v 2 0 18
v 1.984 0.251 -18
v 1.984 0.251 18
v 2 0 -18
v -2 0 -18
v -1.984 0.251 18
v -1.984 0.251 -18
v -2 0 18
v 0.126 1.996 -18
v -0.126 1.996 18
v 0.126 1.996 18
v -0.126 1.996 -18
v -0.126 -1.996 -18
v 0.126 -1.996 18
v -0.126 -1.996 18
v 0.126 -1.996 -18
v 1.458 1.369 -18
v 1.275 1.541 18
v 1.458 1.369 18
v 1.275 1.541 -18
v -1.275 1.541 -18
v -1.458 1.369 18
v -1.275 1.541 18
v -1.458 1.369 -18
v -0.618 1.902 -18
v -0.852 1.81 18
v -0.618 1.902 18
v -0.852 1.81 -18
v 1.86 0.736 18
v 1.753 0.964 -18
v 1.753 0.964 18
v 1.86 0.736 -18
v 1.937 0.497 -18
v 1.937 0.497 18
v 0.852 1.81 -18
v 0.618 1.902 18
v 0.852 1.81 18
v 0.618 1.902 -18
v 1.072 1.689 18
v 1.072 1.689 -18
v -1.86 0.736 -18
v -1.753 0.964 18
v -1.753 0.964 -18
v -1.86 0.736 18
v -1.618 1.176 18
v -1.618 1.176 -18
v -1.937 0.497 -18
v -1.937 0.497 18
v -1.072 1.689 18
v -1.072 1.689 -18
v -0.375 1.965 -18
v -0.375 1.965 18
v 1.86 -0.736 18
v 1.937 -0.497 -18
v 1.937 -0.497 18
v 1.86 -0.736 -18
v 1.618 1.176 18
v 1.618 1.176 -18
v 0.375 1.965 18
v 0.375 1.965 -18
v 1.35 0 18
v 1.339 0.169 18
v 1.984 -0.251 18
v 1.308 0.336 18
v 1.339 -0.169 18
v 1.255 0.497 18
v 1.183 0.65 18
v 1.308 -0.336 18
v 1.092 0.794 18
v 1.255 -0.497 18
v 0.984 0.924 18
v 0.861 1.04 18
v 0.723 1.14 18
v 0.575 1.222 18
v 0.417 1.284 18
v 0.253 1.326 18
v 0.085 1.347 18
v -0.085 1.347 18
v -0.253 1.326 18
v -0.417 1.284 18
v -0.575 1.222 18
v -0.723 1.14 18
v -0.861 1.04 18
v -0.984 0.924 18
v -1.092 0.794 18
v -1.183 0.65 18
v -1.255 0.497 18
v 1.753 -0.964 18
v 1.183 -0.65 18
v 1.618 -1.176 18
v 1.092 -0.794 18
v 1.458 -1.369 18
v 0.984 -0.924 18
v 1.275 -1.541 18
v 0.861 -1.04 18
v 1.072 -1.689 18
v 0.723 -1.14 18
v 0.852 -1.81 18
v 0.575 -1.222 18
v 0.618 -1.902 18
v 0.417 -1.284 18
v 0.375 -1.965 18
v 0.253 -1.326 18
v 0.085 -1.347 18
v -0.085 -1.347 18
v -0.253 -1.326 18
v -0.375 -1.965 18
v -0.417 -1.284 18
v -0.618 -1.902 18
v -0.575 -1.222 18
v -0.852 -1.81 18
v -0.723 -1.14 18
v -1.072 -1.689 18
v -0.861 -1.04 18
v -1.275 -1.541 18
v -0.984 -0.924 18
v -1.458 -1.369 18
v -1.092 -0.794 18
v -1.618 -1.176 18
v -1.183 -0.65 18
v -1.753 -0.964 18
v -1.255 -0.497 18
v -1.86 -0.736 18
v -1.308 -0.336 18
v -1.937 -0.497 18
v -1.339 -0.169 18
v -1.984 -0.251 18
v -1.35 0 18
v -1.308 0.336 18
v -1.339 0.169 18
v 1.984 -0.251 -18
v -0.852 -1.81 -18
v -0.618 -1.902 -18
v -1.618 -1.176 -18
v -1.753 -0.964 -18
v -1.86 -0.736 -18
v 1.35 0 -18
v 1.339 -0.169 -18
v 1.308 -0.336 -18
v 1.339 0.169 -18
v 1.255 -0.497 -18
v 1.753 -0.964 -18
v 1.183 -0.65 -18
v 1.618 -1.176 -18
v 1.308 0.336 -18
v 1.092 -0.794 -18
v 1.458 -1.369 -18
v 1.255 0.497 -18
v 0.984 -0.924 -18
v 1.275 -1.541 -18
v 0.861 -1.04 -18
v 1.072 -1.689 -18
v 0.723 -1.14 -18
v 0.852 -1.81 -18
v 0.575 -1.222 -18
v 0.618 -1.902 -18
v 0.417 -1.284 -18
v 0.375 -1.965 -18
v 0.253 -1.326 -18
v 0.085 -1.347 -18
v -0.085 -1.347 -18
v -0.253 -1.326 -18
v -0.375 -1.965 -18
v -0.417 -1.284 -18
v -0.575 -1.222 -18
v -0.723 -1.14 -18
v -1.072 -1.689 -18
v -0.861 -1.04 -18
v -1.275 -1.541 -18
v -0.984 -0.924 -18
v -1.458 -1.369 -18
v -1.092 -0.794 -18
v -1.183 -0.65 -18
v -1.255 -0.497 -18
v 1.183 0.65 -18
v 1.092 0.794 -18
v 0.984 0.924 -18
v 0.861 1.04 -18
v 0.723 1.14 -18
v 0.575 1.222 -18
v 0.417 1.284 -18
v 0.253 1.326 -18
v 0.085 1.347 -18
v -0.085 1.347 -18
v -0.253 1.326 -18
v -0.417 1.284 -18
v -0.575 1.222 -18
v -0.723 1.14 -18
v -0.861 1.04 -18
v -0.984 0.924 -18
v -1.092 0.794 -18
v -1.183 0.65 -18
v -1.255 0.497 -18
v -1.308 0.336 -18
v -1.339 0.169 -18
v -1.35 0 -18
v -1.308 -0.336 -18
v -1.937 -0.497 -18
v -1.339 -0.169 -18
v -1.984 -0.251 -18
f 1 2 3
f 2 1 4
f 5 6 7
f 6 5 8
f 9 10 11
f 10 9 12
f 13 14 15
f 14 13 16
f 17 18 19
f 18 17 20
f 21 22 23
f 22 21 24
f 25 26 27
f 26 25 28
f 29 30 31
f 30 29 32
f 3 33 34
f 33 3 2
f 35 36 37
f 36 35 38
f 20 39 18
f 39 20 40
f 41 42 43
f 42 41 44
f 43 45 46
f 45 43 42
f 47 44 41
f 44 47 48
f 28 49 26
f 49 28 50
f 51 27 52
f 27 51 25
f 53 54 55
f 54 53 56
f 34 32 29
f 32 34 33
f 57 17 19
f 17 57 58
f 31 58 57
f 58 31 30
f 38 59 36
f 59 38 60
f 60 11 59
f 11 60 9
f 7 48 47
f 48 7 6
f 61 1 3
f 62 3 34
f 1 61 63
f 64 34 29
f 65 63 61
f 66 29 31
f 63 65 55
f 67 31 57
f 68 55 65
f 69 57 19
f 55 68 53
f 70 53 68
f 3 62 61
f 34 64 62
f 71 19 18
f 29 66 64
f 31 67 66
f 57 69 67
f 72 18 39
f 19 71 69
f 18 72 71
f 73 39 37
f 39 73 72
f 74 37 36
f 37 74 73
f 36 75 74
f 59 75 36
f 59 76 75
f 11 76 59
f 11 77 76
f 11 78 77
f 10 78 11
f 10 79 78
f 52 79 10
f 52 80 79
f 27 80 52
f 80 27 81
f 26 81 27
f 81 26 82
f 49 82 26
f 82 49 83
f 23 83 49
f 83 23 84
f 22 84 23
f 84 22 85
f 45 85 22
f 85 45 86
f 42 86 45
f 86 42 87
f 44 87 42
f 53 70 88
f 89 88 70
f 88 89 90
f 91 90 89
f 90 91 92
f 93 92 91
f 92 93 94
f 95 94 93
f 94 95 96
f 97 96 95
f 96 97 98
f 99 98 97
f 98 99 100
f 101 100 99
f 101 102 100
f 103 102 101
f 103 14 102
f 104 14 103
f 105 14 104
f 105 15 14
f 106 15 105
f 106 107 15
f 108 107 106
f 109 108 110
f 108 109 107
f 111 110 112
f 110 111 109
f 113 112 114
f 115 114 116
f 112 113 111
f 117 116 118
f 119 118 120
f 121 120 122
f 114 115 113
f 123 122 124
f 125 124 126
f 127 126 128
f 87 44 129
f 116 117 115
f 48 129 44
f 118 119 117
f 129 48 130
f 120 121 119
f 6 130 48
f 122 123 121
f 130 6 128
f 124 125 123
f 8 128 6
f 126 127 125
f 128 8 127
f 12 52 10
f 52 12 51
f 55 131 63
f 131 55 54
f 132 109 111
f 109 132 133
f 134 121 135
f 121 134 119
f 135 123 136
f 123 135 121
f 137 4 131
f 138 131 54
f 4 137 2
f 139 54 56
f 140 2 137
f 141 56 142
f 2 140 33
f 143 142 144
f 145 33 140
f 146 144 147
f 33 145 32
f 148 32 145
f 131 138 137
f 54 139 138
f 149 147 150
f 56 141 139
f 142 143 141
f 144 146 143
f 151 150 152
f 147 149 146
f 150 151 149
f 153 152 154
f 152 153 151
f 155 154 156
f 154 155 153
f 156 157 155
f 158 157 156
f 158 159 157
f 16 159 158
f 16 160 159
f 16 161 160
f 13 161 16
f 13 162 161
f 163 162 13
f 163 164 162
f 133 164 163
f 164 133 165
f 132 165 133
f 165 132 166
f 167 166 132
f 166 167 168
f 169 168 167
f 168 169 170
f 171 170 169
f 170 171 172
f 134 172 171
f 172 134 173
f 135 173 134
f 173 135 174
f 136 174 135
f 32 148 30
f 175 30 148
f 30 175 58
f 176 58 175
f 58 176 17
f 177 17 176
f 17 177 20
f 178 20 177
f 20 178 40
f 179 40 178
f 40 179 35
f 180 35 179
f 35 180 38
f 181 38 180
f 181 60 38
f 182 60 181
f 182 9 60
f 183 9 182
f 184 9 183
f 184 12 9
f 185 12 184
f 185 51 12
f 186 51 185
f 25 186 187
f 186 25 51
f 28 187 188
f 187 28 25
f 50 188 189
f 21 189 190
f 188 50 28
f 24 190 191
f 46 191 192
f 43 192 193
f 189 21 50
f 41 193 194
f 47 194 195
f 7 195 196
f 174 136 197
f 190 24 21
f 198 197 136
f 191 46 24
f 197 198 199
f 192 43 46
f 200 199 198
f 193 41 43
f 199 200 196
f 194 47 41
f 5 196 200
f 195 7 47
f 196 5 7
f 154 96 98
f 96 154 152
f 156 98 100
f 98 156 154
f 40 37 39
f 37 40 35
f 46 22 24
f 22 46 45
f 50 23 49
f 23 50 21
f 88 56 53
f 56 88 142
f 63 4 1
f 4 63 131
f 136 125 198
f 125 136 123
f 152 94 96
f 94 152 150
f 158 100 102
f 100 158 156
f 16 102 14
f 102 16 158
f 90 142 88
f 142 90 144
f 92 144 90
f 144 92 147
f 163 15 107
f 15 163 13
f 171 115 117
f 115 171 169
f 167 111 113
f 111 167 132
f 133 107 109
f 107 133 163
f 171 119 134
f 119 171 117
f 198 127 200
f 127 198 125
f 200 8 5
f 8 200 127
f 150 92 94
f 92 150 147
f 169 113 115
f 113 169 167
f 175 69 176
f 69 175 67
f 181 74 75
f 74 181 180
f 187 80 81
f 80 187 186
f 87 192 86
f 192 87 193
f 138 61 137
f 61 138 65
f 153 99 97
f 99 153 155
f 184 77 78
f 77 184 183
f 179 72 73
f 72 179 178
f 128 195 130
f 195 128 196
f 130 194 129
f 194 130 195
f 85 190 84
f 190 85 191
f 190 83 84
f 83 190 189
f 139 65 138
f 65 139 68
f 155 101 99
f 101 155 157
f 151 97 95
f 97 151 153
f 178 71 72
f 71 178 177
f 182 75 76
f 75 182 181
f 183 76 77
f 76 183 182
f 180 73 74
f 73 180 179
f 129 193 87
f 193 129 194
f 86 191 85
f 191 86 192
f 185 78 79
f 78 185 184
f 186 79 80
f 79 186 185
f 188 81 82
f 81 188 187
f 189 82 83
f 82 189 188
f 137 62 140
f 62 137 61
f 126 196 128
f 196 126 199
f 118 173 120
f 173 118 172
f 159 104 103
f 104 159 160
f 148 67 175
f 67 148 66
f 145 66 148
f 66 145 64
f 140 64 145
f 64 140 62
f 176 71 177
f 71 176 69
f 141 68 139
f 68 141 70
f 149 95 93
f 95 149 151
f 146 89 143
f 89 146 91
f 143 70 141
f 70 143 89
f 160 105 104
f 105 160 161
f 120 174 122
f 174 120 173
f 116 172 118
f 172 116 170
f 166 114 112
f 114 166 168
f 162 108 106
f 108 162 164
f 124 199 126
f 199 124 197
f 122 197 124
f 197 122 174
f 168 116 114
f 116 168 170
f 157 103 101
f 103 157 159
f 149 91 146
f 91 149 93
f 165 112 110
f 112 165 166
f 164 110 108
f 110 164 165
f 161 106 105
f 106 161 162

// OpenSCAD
$fn = 50;


difference() {
	union() {
		translate(v = [0, 0, -18.0000000000]) {
			cylinder(h = 36, r = 2.0000000000);
		}
	}
	union() {
		translate(v = [0, 0, -100.0000000000]) {
			cylinder(h = 200, r = 1.3500000000);
		}
	}
}
